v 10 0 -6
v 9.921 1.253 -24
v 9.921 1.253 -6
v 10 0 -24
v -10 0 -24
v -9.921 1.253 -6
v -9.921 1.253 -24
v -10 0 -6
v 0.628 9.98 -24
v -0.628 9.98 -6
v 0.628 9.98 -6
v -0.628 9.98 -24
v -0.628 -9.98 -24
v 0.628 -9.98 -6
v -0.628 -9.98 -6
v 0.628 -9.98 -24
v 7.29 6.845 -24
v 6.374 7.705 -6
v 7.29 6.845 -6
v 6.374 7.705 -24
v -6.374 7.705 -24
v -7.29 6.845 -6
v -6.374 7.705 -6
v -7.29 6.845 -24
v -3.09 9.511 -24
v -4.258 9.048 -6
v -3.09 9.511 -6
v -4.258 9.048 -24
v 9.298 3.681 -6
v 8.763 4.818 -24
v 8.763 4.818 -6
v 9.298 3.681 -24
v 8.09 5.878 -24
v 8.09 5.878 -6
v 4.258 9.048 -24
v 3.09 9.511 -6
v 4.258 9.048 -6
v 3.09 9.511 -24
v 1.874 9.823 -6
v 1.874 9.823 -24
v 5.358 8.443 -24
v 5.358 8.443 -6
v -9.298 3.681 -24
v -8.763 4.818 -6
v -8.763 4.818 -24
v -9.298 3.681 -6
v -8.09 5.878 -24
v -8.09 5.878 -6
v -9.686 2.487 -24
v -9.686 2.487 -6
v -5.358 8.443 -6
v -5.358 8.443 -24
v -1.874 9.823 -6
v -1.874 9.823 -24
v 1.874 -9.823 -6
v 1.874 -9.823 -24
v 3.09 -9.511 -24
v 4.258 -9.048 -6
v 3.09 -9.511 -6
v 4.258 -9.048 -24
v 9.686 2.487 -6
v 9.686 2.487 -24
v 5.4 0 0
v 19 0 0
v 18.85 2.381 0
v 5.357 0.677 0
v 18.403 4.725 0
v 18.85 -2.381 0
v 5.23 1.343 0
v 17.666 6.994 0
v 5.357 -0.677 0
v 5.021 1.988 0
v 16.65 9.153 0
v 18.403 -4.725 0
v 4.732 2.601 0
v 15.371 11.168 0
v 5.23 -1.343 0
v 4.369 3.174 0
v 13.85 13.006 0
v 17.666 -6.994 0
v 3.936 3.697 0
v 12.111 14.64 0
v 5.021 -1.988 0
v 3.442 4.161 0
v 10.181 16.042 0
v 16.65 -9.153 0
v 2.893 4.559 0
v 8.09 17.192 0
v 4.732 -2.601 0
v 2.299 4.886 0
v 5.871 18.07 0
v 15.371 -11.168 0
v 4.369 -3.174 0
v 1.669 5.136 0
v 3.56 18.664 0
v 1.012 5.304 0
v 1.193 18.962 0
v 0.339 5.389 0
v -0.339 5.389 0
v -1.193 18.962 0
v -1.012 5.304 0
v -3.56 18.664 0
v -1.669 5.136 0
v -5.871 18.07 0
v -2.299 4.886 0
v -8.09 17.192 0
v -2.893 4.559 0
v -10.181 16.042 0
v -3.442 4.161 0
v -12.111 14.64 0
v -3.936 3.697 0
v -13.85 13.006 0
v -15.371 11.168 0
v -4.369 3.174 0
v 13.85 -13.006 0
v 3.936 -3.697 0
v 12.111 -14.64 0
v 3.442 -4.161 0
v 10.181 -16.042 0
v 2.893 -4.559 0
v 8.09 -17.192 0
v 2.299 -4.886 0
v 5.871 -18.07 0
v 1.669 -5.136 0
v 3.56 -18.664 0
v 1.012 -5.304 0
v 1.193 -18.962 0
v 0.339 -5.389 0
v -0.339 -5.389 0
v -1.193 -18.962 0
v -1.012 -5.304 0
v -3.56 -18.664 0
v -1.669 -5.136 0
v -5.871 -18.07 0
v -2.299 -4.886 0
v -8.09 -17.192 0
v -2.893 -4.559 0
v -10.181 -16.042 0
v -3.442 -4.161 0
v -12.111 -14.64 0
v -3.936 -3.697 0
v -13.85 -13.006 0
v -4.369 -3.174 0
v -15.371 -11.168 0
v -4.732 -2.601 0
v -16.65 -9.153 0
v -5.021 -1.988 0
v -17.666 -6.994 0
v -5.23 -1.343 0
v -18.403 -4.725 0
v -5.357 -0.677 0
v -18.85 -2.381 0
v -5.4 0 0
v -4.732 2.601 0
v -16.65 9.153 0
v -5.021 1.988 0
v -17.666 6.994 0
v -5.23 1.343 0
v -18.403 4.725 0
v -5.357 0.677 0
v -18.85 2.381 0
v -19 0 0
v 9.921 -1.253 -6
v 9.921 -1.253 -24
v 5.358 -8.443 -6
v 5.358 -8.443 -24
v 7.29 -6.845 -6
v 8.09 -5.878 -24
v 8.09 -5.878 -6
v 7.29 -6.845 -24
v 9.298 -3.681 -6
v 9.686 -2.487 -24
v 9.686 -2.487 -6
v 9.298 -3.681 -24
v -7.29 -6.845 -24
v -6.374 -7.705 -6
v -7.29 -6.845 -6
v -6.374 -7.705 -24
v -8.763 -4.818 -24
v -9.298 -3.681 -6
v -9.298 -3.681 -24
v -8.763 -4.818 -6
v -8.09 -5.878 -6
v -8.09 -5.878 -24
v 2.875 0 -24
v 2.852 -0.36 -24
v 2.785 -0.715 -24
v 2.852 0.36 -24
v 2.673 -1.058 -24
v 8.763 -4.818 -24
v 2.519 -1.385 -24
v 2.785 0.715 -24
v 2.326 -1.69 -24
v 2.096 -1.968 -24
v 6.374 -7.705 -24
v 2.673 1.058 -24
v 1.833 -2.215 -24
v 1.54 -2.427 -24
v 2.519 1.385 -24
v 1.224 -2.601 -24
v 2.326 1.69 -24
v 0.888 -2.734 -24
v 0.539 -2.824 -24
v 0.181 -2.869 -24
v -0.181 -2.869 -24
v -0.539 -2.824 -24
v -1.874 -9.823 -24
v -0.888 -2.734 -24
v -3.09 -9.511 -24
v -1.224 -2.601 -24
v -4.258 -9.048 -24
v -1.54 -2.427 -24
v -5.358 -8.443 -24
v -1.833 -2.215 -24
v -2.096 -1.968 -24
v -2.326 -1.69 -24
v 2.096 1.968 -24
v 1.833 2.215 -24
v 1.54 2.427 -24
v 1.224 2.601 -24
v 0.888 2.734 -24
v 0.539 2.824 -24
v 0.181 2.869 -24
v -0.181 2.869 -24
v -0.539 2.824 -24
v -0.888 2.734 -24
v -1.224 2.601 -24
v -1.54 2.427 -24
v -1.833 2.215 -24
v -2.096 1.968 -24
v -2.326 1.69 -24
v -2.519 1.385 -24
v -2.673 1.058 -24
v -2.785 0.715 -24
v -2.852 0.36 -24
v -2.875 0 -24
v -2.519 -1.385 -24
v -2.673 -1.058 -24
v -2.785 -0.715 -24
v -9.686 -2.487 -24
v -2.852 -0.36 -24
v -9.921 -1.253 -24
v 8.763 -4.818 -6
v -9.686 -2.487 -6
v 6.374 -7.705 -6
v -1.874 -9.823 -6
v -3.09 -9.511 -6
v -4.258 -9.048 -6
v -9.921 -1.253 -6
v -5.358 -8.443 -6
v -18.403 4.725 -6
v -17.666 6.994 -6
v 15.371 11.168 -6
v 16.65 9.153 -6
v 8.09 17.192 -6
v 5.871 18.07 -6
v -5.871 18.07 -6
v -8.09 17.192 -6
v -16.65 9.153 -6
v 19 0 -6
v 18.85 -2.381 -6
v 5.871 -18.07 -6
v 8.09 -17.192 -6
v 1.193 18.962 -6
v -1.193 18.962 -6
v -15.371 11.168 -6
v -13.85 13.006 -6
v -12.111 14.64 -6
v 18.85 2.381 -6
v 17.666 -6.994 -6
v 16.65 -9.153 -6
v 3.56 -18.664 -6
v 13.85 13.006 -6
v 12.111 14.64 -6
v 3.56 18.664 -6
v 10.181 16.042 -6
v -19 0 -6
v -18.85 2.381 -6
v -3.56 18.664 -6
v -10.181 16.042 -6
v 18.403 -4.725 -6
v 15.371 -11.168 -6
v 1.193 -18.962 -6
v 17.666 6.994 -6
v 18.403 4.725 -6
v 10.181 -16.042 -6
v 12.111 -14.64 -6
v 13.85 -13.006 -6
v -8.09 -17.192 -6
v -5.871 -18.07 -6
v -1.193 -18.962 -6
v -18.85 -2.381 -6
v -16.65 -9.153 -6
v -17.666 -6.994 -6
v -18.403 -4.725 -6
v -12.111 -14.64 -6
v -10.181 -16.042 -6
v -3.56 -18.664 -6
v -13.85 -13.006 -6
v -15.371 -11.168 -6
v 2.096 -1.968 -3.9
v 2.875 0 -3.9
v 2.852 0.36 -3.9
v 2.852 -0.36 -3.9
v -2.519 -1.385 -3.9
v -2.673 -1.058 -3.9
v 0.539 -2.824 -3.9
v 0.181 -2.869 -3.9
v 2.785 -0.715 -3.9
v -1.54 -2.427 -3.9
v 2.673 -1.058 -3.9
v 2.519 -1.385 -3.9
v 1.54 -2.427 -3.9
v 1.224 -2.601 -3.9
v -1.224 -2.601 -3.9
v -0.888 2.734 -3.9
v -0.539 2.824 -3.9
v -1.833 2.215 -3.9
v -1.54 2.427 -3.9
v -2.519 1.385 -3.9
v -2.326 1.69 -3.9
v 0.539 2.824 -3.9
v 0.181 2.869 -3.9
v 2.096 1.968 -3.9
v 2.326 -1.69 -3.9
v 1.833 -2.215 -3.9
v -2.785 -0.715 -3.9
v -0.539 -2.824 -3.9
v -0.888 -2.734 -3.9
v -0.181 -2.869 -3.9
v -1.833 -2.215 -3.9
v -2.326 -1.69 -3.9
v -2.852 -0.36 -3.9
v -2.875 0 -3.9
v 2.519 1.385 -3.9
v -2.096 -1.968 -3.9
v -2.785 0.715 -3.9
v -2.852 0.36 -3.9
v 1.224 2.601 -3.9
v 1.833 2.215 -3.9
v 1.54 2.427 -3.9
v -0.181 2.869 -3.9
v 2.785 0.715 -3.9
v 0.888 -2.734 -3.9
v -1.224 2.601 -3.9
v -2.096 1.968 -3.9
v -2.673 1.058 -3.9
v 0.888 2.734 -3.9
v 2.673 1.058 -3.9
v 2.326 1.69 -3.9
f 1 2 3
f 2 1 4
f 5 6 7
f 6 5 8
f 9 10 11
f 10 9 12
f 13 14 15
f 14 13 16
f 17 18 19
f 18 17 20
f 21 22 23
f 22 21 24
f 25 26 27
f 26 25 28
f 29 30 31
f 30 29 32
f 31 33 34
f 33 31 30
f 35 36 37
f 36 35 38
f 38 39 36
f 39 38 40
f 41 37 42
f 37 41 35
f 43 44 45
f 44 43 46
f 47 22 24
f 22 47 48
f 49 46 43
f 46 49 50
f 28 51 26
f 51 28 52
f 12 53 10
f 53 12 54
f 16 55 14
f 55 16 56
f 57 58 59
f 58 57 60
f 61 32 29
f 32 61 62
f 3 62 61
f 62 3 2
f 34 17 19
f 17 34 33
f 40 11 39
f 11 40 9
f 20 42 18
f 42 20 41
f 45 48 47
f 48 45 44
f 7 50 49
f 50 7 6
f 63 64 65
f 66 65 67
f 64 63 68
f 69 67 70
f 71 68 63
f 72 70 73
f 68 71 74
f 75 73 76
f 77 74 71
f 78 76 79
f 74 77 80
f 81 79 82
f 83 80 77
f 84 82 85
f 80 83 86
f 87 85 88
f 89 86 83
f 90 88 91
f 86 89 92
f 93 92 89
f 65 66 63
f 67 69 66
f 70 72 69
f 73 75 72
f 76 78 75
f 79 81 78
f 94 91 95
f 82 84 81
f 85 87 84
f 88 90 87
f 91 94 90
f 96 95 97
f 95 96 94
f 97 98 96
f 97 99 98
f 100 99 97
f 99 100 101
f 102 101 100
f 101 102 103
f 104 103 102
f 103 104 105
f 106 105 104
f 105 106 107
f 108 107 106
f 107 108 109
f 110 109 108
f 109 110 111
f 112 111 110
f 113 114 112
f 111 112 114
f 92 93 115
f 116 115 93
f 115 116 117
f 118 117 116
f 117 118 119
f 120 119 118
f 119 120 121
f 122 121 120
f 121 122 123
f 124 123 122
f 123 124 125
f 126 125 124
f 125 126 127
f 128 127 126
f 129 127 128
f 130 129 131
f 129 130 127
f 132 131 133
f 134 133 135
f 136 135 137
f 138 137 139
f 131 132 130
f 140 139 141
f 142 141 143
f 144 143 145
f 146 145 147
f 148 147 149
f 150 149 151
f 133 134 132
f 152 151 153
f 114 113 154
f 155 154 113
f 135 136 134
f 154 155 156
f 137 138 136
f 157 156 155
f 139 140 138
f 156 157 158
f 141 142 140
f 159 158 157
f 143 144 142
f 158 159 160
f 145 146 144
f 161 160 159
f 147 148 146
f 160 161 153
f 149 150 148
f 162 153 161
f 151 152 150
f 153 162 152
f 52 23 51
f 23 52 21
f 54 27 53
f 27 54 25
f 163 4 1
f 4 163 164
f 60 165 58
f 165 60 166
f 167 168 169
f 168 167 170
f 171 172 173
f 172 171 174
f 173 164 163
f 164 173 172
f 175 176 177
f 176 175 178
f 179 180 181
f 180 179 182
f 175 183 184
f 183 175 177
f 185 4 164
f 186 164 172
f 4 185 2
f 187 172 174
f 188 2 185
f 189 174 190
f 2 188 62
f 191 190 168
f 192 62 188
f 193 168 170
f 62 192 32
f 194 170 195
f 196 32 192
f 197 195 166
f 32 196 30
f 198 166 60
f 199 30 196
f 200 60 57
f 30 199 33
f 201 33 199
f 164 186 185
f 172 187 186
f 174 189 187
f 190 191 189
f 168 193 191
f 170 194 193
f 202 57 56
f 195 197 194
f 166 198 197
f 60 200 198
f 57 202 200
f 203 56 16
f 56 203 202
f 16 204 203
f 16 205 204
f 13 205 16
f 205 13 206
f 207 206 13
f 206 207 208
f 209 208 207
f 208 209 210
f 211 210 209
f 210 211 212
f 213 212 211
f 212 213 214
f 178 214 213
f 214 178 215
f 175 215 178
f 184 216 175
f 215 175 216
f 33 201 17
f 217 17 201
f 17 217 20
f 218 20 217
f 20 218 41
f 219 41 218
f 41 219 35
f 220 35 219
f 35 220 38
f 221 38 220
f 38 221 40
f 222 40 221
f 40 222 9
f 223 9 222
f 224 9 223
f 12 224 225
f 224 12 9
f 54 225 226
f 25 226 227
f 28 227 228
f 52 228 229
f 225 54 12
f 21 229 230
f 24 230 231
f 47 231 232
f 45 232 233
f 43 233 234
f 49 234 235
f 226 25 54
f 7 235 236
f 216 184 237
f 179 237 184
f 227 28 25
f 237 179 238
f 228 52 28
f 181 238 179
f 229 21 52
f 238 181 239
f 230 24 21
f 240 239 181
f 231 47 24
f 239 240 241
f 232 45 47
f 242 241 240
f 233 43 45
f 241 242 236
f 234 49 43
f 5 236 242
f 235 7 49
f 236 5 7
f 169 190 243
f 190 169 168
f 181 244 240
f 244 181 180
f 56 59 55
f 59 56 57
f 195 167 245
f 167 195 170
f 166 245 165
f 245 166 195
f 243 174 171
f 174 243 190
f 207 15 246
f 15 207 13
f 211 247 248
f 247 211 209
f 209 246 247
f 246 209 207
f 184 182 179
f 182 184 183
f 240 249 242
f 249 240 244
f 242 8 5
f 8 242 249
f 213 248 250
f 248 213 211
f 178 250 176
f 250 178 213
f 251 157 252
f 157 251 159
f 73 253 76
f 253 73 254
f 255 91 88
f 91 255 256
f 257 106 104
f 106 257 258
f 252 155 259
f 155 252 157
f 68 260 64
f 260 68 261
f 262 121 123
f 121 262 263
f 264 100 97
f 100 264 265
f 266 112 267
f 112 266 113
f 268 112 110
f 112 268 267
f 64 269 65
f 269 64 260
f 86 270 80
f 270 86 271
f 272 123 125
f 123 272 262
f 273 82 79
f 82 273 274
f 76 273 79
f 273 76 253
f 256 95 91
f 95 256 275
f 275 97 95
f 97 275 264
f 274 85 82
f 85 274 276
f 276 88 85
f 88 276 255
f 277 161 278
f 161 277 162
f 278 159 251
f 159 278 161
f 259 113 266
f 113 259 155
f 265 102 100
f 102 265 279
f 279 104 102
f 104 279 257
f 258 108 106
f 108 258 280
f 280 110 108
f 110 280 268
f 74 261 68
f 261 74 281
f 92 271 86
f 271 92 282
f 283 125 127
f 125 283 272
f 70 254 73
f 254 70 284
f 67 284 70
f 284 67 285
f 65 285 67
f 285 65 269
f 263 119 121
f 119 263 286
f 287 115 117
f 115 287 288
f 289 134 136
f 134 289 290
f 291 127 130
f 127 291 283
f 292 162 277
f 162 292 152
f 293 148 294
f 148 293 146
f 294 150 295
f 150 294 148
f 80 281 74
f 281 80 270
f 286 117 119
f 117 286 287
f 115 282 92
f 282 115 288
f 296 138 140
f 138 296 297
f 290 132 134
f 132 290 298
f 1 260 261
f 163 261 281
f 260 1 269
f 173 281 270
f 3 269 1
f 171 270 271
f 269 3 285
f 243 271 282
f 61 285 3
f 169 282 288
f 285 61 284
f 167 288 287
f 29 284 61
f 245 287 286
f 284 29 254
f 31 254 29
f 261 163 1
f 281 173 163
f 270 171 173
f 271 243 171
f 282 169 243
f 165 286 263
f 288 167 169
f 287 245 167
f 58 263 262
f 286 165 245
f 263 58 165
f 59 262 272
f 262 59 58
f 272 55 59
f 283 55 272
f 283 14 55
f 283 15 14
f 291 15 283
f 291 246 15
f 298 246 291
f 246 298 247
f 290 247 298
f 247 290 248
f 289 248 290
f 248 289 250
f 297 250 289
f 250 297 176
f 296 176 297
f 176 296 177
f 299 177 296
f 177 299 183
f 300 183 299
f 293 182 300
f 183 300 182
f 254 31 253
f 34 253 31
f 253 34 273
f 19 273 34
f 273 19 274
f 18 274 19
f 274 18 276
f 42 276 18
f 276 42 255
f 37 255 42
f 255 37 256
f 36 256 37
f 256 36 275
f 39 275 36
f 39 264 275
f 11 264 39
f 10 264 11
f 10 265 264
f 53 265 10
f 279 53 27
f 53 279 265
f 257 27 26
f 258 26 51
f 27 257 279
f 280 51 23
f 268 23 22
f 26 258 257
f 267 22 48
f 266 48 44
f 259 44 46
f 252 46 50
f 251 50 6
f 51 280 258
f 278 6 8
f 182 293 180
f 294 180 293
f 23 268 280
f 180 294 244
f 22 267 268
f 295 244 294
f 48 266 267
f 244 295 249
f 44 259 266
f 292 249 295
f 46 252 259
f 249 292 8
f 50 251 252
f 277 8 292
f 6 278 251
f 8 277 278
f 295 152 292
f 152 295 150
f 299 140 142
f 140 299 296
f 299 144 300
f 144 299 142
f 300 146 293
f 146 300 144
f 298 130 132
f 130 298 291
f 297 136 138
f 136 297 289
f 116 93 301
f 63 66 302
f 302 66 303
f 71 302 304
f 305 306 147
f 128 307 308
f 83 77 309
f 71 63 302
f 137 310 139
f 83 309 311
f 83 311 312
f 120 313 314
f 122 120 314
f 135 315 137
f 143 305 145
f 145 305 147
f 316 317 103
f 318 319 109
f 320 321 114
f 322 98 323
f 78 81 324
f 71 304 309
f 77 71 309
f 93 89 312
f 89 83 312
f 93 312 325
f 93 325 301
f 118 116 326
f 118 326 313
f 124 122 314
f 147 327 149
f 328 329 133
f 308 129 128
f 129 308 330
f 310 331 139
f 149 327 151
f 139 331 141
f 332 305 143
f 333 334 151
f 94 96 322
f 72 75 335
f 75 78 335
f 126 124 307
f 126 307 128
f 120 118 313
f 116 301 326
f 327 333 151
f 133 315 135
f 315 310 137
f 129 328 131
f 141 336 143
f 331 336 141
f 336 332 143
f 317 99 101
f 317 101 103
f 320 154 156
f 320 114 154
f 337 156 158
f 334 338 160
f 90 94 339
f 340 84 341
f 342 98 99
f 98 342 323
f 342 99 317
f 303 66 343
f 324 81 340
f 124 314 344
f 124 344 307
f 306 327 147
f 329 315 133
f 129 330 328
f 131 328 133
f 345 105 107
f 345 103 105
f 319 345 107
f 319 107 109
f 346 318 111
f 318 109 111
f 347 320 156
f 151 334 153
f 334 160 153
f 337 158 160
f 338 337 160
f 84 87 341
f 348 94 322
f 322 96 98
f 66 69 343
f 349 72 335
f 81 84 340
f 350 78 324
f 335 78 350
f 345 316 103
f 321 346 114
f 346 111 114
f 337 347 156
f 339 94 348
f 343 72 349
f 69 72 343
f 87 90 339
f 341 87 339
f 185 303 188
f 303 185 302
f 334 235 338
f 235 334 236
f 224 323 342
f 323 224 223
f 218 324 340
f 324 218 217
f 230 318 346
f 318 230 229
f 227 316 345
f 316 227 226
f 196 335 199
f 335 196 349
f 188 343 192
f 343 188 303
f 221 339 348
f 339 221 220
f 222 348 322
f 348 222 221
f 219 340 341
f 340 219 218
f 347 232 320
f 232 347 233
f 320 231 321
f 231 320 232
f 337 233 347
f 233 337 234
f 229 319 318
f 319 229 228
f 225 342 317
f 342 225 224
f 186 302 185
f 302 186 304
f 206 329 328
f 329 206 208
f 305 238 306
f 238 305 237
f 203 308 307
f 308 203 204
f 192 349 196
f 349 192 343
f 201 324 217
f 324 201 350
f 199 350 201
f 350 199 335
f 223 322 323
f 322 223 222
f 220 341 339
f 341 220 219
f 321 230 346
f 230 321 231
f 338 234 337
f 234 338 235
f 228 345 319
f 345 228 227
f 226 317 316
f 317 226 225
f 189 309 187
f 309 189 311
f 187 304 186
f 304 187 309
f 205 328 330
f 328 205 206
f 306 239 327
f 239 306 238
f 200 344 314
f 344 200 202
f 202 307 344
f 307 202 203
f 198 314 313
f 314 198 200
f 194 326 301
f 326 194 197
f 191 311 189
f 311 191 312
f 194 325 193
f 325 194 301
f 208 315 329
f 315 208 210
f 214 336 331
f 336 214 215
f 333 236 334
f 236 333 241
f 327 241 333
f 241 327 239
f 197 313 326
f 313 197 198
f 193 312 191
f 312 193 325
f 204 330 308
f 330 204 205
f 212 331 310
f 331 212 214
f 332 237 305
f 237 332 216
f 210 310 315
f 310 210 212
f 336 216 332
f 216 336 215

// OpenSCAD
$fn = 50;


difference() {
	union() {
		translate(v = [0, 0, -24.0000000000]) {
			cylinder(h = 24, r = 10.0000000000);
		}
		translate(v = [0, 0, -6.0000000000]) {
			cylinder(h = 6, r = 19.0000000000);
		}
	}
	union() {
		translate(v = [0, 0, 0]) {
			rotate(a = [0, 0, 0]) {
				difference() {
					union() {
						#translate(v = [0, 0, -24.0000000000]) {
							cylinder(h = 24, r = 2.6000000000);
						}
						#translate(v = [0, 0, -3.9000000000]) {
							cylinder(h = 3.9000000000, r = 10.0000000000, r1 = 2.8750000000, r2 = 5.4000000000);
						}
						#translate(v = [0, 0, -24.0000000000]) {
							cylinder(h = 24, r = 2.8750000000);
						}
						#translate(v = [0, 0, -24.0000000000]) {
							cylinder(h = 24, r = 2.6000000000);
						}
					}
					union();
				}
			}
		}
	}
}
